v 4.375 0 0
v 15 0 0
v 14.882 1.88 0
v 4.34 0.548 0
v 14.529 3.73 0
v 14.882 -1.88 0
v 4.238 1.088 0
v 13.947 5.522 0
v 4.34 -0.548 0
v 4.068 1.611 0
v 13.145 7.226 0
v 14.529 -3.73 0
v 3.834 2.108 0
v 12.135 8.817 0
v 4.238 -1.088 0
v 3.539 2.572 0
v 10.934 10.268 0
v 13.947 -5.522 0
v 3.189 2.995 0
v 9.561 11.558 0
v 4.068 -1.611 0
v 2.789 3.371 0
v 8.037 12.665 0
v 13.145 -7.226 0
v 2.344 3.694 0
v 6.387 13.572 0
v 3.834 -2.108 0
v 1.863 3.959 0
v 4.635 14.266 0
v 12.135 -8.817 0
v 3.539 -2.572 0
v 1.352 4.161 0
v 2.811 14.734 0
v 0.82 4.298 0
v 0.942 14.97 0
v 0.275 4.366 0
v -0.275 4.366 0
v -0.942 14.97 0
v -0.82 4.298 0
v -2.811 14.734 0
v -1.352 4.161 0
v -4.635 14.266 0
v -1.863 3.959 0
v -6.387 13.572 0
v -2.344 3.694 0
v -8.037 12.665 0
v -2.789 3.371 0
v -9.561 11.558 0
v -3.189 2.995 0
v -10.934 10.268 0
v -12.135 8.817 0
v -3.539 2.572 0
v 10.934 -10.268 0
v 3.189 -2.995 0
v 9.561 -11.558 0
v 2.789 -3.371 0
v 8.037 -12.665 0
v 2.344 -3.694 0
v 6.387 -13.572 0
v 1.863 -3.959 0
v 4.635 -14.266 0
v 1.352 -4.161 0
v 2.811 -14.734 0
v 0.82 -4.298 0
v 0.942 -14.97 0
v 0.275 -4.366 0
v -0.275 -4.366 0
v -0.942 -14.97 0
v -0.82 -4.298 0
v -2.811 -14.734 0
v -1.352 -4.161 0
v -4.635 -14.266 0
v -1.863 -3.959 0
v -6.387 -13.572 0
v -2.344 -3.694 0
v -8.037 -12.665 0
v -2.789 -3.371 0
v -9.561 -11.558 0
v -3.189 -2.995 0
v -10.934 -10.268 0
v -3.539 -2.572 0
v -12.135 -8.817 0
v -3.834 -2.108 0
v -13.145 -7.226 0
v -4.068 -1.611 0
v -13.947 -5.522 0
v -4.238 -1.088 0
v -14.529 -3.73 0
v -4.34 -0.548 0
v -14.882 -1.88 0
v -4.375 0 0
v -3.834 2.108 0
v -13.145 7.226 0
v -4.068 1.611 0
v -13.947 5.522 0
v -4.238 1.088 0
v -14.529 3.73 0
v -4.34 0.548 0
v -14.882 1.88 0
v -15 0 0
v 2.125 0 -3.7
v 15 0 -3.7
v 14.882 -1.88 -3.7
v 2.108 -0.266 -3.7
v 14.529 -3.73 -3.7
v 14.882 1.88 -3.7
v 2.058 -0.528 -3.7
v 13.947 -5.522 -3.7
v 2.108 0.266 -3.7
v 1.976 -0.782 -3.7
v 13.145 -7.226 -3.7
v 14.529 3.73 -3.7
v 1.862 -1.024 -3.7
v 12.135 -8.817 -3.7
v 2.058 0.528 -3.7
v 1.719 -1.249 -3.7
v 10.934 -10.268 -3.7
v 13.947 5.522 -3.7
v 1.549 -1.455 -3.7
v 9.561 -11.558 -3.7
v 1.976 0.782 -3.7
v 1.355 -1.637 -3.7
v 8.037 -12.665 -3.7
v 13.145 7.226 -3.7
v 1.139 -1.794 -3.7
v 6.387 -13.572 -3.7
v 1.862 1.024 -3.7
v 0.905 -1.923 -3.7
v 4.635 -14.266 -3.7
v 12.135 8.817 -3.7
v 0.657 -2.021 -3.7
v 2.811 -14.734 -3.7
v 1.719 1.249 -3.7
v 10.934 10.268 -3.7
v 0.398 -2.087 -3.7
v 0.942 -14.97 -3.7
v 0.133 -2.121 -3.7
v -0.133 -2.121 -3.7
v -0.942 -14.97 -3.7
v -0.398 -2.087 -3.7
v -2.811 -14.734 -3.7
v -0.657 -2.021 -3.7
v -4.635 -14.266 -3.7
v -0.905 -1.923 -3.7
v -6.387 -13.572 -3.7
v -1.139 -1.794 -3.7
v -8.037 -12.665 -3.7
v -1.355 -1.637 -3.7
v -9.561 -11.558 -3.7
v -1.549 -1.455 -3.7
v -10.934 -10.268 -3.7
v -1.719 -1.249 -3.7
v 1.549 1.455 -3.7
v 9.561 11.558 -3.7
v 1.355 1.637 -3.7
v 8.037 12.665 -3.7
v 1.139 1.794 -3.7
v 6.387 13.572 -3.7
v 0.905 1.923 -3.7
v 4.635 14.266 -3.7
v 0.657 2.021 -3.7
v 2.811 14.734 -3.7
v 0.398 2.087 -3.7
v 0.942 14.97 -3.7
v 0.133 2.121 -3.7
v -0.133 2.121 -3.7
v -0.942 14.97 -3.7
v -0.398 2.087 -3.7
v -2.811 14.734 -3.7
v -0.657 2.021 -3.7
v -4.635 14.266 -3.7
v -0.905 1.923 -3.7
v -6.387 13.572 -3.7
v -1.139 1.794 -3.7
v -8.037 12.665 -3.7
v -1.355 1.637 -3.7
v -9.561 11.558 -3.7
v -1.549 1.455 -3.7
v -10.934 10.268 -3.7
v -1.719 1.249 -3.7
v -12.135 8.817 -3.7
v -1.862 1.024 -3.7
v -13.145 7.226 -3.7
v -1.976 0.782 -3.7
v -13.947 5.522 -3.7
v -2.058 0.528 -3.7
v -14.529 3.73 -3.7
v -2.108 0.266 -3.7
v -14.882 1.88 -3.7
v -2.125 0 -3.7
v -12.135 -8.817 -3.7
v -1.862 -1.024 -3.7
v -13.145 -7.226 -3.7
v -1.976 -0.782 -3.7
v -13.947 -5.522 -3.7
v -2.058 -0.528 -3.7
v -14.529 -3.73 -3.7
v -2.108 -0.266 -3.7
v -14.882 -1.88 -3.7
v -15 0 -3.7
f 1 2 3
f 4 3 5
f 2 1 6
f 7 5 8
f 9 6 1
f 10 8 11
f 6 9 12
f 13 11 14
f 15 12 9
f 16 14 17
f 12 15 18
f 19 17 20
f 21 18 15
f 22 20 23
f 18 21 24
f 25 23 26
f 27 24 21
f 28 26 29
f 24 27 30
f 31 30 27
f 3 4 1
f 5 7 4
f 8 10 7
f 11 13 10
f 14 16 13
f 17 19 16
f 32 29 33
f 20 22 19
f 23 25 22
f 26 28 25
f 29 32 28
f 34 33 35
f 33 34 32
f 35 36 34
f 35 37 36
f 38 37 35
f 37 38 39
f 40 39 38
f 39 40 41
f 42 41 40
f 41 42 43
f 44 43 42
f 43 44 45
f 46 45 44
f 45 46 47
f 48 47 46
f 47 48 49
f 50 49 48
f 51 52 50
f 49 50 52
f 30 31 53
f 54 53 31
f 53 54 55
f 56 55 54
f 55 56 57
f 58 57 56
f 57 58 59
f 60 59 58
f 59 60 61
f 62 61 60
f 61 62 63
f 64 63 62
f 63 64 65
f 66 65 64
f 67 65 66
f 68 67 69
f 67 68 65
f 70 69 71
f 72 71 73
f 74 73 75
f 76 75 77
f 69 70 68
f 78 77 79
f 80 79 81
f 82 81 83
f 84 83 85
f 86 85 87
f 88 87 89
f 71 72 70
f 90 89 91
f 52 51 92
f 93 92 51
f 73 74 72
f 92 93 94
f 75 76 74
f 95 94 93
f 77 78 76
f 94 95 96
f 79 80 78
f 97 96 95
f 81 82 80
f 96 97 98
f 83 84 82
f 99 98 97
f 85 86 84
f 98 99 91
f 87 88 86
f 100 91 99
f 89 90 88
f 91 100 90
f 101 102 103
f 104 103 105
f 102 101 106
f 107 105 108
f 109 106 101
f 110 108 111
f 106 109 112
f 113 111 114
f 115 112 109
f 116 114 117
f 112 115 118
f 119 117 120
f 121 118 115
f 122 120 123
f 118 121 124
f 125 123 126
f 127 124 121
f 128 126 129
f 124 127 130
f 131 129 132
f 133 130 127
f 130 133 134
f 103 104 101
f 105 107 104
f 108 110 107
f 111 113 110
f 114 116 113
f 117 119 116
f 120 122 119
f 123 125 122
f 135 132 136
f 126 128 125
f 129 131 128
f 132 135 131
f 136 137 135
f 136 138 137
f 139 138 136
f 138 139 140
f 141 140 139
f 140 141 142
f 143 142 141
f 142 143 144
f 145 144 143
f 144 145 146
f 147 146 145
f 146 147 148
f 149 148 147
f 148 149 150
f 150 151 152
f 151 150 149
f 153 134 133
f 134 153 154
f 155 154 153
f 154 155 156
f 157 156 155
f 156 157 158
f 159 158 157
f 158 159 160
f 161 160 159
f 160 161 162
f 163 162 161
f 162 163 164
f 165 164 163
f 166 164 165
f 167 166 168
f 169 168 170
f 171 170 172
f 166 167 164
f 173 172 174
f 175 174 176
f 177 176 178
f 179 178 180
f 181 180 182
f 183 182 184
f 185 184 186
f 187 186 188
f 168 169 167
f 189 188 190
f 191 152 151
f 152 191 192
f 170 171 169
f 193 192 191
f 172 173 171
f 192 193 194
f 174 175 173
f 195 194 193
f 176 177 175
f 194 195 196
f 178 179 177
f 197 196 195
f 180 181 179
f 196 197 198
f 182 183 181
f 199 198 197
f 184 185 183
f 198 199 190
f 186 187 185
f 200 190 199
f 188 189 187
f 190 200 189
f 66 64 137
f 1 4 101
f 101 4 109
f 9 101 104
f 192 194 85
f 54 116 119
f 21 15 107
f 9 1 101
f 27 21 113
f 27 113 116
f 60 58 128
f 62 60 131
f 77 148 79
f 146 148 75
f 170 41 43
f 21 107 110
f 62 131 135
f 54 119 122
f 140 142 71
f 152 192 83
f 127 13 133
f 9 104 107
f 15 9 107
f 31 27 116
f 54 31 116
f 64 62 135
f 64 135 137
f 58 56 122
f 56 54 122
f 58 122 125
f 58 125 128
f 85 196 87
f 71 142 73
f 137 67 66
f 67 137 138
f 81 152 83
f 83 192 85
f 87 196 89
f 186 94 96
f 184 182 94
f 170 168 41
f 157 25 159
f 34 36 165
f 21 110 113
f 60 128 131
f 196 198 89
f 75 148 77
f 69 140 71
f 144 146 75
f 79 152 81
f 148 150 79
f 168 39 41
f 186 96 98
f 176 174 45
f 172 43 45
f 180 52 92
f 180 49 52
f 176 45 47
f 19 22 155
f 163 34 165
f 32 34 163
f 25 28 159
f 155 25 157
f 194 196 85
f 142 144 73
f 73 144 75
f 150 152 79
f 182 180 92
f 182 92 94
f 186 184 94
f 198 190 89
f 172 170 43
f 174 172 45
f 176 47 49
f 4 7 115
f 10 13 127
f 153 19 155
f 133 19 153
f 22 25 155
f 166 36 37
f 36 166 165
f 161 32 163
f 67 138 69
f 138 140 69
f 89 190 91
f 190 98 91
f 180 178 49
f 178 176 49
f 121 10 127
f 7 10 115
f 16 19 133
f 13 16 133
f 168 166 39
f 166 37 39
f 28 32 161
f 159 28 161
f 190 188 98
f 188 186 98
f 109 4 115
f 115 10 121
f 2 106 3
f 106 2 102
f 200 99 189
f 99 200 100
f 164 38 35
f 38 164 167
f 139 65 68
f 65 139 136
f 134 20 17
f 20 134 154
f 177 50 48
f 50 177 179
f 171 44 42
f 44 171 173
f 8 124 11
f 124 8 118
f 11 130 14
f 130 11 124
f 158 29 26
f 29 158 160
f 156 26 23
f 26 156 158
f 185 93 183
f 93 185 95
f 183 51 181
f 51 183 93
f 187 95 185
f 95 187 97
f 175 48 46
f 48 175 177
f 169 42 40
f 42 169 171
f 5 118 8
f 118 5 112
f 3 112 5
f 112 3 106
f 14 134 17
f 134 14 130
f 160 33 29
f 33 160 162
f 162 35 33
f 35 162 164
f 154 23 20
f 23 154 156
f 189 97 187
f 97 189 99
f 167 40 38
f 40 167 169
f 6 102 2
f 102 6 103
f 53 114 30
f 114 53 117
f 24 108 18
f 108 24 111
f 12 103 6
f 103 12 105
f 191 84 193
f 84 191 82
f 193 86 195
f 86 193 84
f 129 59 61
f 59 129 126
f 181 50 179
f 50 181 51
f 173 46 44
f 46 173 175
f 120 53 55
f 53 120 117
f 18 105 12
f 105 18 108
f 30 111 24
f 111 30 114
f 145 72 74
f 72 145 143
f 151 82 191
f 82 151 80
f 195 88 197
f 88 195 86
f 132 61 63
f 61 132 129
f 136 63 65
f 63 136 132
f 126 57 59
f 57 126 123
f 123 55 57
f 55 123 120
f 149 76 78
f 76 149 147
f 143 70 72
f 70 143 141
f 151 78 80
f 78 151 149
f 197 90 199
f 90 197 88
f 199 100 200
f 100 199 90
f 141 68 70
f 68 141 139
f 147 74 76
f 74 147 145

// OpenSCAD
$fn = 50;


difference() {
	union() {
		translate(v = [0, 0, -3.7000000000]) {
			cylinder(h = 3.7000000000, r = 15.0000000000);
		}
	}
	union() {
		translate(v = [0, 0, 0]) {
			rotate(a = [0, 0, 0]) {
				difference() {
					union() {
						#translate(v = [0, 0, -3.7000000000]) {
							cylinder(h = 3.7000000000, r = 2.0000000000);
						}
						#translate(v = [0, 0, -3.7000000000]) {
							cylinder(h = 3.7000000000, r1 = 2.1250000000, r2 = 4.3750000000);
						}
						#translate(v = [0, 0, -3.7000000000]) {
							cylinder(h = 3.7000000000, r = 2.1250000000);
						}
						#translate(v = [0, 0, -3.7000000000]) {
							cylinder(h = 3.7000000000, r = 2.0000000000);
						}
					}
					union();
				}
			}
		}
	}
}
